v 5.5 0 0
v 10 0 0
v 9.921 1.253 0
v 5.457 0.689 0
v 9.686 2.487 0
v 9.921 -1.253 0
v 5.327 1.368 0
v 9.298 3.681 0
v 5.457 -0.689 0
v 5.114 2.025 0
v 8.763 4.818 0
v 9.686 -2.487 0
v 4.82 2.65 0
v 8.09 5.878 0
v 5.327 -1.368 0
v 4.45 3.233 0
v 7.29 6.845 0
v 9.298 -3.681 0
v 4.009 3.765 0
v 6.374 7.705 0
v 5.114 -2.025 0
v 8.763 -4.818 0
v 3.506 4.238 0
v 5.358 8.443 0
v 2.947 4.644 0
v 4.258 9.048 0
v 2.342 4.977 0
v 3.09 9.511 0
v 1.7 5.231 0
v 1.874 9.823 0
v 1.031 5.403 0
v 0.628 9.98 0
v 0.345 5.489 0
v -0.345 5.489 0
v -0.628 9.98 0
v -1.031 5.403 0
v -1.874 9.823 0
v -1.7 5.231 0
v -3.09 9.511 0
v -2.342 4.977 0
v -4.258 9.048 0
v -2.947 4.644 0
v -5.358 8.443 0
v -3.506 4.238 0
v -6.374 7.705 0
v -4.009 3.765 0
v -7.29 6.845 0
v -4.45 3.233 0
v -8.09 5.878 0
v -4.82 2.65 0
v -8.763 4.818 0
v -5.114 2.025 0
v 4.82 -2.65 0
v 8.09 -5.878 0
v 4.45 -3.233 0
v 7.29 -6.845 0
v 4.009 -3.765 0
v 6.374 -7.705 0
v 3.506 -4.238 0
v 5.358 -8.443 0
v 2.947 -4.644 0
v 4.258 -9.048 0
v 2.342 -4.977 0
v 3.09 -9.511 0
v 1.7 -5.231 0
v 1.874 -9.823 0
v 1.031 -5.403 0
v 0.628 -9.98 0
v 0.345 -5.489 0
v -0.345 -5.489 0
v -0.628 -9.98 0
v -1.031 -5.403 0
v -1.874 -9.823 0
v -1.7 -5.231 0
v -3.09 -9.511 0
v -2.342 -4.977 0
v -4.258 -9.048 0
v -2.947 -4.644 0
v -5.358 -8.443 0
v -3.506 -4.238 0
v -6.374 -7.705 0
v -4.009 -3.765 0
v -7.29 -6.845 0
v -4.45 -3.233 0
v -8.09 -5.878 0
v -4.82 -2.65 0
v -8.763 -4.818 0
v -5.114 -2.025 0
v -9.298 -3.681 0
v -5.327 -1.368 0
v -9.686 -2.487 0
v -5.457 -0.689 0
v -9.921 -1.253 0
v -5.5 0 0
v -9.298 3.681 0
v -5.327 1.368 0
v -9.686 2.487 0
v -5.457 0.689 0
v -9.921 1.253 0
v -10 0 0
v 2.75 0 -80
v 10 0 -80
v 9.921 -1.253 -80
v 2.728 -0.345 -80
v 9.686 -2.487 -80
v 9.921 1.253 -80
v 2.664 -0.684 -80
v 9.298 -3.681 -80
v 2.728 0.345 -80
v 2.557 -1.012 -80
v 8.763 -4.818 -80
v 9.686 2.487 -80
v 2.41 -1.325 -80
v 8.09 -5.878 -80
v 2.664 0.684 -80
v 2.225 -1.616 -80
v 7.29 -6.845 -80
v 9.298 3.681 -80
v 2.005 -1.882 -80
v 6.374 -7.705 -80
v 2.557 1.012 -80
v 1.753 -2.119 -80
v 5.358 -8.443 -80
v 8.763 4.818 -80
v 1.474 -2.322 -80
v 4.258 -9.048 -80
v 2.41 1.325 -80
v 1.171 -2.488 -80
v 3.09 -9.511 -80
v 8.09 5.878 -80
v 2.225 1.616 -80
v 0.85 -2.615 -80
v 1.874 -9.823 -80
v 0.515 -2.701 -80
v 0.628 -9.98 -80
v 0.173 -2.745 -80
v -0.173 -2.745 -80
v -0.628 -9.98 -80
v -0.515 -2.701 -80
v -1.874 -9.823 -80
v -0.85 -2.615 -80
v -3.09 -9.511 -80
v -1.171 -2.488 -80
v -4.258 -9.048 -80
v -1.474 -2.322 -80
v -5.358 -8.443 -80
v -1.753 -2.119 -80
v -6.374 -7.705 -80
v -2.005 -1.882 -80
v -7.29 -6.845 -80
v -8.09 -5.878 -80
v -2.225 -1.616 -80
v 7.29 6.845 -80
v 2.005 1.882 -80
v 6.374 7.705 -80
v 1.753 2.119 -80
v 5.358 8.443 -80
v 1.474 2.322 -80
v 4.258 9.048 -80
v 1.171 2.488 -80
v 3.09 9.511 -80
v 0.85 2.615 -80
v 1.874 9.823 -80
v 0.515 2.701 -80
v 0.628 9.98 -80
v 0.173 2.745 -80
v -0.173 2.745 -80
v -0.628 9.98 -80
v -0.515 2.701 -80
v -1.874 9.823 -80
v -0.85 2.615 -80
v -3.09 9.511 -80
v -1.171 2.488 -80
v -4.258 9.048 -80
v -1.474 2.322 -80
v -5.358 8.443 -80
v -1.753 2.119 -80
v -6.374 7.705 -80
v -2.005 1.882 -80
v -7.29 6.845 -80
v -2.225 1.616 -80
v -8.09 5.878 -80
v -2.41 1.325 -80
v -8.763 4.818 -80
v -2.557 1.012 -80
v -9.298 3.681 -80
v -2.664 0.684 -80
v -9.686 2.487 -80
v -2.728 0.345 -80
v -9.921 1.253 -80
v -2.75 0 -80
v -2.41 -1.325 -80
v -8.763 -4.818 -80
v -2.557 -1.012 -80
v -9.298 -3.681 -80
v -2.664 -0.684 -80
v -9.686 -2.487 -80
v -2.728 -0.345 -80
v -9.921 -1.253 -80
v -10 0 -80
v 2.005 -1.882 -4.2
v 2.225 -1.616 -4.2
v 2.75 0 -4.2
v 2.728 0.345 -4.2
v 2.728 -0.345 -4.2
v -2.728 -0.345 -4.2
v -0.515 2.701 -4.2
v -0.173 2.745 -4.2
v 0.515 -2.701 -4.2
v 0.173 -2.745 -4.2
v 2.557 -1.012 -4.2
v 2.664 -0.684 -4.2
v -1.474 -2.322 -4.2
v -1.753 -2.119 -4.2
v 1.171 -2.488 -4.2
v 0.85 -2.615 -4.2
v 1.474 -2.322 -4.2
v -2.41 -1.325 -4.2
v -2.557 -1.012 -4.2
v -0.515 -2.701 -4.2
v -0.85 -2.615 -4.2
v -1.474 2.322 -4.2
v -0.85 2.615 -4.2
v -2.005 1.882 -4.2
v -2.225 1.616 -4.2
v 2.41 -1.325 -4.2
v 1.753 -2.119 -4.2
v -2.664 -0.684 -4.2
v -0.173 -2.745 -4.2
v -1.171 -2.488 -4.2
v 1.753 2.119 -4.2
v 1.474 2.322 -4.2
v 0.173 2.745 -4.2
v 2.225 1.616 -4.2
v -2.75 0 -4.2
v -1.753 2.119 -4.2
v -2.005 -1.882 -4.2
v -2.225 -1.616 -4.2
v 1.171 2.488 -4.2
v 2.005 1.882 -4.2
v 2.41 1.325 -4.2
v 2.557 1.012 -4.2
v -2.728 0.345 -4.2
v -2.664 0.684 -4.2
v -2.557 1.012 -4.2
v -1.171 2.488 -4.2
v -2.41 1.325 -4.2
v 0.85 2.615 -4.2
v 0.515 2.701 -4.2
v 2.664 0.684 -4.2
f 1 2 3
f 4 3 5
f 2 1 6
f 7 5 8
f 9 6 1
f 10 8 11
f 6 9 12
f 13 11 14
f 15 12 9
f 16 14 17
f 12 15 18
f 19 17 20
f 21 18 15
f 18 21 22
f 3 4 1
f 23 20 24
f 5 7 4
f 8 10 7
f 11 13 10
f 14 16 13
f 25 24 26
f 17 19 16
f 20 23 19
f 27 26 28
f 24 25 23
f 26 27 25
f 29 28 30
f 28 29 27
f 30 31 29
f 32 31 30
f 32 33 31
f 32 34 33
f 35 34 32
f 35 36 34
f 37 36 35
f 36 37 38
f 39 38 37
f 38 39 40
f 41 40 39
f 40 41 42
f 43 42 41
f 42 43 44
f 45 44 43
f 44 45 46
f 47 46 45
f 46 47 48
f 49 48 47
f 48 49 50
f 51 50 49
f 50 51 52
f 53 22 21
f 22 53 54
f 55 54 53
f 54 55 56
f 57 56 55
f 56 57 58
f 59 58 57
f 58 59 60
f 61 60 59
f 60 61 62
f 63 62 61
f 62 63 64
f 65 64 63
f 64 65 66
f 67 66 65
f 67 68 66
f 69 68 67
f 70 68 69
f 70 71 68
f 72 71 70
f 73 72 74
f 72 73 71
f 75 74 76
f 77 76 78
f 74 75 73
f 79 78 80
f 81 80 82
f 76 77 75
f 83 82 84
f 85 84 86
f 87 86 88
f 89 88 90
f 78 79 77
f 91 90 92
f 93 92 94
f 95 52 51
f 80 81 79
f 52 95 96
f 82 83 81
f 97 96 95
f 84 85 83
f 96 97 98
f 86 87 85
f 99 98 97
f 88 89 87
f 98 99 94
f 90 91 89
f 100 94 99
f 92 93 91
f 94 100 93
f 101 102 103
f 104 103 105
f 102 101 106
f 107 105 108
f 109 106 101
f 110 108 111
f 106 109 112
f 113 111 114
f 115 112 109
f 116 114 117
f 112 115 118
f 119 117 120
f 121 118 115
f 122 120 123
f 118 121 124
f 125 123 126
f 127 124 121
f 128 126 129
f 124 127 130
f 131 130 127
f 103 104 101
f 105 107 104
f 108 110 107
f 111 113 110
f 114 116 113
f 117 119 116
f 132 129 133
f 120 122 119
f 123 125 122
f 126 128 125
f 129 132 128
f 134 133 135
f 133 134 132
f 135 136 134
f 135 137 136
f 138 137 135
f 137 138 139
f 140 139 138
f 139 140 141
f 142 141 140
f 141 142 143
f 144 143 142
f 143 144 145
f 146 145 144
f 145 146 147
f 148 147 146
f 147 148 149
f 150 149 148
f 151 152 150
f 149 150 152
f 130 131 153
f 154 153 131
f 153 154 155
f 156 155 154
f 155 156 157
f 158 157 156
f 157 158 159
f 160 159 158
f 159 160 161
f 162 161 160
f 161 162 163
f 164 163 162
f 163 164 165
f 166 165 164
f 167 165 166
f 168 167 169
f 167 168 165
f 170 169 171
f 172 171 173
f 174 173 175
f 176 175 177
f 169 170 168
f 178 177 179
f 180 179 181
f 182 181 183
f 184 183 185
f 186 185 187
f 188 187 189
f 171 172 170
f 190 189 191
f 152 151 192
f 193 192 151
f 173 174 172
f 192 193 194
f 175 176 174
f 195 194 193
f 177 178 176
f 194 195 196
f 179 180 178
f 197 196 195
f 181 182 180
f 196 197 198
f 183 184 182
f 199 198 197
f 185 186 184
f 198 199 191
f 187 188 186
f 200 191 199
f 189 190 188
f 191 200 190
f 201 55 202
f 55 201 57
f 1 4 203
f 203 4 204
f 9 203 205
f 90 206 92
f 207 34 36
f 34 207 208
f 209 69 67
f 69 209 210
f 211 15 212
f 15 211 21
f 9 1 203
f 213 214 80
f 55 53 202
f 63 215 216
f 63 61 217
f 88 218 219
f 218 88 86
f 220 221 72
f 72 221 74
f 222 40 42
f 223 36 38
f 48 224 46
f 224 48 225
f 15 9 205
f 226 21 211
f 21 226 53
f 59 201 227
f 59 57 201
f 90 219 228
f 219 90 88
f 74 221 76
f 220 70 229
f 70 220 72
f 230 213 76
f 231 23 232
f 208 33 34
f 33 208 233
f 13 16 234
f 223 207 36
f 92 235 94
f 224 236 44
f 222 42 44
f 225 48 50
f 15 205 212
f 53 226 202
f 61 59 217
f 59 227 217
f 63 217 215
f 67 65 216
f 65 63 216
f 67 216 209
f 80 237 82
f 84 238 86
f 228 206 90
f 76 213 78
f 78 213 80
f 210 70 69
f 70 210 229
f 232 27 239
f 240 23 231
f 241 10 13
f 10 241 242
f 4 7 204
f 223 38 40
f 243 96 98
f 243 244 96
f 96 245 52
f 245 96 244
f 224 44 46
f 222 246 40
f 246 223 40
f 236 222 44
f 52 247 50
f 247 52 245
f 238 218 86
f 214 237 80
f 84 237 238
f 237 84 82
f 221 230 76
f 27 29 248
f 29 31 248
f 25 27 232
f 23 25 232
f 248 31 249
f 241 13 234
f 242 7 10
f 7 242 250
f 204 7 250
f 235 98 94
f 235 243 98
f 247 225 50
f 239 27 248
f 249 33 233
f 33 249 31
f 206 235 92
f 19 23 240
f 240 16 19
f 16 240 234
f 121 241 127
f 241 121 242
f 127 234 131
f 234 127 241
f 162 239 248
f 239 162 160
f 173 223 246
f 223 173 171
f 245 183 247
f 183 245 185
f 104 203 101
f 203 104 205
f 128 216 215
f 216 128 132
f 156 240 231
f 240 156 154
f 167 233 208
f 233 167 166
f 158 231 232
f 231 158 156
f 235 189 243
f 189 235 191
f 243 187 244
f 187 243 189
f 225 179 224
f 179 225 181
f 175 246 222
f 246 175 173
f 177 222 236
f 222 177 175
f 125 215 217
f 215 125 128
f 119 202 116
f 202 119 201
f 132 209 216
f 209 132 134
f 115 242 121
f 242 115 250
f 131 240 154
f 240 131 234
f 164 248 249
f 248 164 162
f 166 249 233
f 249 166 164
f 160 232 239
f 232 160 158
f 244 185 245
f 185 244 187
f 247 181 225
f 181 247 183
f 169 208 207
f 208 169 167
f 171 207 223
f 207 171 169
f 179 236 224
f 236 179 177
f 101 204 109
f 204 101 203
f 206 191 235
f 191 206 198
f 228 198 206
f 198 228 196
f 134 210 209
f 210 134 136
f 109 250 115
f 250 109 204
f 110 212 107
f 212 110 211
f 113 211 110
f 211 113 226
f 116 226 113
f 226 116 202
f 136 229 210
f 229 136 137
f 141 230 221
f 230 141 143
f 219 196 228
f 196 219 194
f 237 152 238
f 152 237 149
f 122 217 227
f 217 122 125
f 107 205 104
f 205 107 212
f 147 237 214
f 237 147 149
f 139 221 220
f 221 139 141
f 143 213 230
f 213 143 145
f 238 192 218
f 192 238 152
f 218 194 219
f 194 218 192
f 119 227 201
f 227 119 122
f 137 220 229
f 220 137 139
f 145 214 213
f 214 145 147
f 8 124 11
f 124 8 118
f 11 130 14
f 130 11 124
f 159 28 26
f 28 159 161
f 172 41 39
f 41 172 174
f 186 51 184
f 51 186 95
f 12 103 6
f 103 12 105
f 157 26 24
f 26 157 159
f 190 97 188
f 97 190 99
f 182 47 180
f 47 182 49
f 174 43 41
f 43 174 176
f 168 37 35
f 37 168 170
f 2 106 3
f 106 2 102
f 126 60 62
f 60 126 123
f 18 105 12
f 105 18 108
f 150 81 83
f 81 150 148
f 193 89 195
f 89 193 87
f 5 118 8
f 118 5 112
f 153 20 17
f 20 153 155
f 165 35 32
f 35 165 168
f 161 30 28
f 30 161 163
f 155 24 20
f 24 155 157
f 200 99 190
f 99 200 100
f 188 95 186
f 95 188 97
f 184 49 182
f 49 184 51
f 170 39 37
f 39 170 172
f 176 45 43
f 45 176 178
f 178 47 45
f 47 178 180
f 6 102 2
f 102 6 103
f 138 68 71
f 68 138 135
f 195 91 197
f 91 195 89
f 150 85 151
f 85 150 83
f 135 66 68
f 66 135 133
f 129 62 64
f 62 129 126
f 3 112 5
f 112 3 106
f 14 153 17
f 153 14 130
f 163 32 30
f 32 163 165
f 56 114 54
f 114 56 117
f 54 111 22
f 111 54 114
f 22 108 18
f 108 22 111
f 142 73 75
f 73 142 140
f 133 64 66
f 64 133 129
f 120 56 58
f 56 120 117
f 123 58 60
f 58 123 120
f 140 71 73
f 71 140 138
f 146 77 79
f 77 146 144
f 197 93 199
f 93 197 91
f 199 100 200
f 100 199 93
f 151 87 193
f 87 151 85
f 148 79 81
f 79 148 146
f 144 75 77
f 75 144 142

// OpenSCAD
$fn = 50;


difference() {
	union() {
		translate(v = [0, 0, -80.0000000000]) {
			cylinder(h = 80, r = 10.0000000000);
		}
	}
	union() {
		translate(v = [0, 0, 0]) {
			rotate(a = [0, 0, 0]) {
				difference() {
					union() {
						#translate(v = [0, 0, -80.0000000000]) {
							cylinder(h = 80, r = 2.2500000000);
						}
						#translate(v = [0, 0, -4.2000000000]) {
							cylinder(h = 4.2000000000, r1 = 2.7500000000, r2 = 5.5000000000);
						}
						#translate(v = [0, 0, -80.0000000000]) {
							cylinder(h = 80, r = 2.7500000000);
						}
						#translate(v = [0, 0, -80.0000000000]) {
							cylinder(h = 80, r = 2.2500000000);
						}
					}
					union();
				}
			}
		}
	}
}
